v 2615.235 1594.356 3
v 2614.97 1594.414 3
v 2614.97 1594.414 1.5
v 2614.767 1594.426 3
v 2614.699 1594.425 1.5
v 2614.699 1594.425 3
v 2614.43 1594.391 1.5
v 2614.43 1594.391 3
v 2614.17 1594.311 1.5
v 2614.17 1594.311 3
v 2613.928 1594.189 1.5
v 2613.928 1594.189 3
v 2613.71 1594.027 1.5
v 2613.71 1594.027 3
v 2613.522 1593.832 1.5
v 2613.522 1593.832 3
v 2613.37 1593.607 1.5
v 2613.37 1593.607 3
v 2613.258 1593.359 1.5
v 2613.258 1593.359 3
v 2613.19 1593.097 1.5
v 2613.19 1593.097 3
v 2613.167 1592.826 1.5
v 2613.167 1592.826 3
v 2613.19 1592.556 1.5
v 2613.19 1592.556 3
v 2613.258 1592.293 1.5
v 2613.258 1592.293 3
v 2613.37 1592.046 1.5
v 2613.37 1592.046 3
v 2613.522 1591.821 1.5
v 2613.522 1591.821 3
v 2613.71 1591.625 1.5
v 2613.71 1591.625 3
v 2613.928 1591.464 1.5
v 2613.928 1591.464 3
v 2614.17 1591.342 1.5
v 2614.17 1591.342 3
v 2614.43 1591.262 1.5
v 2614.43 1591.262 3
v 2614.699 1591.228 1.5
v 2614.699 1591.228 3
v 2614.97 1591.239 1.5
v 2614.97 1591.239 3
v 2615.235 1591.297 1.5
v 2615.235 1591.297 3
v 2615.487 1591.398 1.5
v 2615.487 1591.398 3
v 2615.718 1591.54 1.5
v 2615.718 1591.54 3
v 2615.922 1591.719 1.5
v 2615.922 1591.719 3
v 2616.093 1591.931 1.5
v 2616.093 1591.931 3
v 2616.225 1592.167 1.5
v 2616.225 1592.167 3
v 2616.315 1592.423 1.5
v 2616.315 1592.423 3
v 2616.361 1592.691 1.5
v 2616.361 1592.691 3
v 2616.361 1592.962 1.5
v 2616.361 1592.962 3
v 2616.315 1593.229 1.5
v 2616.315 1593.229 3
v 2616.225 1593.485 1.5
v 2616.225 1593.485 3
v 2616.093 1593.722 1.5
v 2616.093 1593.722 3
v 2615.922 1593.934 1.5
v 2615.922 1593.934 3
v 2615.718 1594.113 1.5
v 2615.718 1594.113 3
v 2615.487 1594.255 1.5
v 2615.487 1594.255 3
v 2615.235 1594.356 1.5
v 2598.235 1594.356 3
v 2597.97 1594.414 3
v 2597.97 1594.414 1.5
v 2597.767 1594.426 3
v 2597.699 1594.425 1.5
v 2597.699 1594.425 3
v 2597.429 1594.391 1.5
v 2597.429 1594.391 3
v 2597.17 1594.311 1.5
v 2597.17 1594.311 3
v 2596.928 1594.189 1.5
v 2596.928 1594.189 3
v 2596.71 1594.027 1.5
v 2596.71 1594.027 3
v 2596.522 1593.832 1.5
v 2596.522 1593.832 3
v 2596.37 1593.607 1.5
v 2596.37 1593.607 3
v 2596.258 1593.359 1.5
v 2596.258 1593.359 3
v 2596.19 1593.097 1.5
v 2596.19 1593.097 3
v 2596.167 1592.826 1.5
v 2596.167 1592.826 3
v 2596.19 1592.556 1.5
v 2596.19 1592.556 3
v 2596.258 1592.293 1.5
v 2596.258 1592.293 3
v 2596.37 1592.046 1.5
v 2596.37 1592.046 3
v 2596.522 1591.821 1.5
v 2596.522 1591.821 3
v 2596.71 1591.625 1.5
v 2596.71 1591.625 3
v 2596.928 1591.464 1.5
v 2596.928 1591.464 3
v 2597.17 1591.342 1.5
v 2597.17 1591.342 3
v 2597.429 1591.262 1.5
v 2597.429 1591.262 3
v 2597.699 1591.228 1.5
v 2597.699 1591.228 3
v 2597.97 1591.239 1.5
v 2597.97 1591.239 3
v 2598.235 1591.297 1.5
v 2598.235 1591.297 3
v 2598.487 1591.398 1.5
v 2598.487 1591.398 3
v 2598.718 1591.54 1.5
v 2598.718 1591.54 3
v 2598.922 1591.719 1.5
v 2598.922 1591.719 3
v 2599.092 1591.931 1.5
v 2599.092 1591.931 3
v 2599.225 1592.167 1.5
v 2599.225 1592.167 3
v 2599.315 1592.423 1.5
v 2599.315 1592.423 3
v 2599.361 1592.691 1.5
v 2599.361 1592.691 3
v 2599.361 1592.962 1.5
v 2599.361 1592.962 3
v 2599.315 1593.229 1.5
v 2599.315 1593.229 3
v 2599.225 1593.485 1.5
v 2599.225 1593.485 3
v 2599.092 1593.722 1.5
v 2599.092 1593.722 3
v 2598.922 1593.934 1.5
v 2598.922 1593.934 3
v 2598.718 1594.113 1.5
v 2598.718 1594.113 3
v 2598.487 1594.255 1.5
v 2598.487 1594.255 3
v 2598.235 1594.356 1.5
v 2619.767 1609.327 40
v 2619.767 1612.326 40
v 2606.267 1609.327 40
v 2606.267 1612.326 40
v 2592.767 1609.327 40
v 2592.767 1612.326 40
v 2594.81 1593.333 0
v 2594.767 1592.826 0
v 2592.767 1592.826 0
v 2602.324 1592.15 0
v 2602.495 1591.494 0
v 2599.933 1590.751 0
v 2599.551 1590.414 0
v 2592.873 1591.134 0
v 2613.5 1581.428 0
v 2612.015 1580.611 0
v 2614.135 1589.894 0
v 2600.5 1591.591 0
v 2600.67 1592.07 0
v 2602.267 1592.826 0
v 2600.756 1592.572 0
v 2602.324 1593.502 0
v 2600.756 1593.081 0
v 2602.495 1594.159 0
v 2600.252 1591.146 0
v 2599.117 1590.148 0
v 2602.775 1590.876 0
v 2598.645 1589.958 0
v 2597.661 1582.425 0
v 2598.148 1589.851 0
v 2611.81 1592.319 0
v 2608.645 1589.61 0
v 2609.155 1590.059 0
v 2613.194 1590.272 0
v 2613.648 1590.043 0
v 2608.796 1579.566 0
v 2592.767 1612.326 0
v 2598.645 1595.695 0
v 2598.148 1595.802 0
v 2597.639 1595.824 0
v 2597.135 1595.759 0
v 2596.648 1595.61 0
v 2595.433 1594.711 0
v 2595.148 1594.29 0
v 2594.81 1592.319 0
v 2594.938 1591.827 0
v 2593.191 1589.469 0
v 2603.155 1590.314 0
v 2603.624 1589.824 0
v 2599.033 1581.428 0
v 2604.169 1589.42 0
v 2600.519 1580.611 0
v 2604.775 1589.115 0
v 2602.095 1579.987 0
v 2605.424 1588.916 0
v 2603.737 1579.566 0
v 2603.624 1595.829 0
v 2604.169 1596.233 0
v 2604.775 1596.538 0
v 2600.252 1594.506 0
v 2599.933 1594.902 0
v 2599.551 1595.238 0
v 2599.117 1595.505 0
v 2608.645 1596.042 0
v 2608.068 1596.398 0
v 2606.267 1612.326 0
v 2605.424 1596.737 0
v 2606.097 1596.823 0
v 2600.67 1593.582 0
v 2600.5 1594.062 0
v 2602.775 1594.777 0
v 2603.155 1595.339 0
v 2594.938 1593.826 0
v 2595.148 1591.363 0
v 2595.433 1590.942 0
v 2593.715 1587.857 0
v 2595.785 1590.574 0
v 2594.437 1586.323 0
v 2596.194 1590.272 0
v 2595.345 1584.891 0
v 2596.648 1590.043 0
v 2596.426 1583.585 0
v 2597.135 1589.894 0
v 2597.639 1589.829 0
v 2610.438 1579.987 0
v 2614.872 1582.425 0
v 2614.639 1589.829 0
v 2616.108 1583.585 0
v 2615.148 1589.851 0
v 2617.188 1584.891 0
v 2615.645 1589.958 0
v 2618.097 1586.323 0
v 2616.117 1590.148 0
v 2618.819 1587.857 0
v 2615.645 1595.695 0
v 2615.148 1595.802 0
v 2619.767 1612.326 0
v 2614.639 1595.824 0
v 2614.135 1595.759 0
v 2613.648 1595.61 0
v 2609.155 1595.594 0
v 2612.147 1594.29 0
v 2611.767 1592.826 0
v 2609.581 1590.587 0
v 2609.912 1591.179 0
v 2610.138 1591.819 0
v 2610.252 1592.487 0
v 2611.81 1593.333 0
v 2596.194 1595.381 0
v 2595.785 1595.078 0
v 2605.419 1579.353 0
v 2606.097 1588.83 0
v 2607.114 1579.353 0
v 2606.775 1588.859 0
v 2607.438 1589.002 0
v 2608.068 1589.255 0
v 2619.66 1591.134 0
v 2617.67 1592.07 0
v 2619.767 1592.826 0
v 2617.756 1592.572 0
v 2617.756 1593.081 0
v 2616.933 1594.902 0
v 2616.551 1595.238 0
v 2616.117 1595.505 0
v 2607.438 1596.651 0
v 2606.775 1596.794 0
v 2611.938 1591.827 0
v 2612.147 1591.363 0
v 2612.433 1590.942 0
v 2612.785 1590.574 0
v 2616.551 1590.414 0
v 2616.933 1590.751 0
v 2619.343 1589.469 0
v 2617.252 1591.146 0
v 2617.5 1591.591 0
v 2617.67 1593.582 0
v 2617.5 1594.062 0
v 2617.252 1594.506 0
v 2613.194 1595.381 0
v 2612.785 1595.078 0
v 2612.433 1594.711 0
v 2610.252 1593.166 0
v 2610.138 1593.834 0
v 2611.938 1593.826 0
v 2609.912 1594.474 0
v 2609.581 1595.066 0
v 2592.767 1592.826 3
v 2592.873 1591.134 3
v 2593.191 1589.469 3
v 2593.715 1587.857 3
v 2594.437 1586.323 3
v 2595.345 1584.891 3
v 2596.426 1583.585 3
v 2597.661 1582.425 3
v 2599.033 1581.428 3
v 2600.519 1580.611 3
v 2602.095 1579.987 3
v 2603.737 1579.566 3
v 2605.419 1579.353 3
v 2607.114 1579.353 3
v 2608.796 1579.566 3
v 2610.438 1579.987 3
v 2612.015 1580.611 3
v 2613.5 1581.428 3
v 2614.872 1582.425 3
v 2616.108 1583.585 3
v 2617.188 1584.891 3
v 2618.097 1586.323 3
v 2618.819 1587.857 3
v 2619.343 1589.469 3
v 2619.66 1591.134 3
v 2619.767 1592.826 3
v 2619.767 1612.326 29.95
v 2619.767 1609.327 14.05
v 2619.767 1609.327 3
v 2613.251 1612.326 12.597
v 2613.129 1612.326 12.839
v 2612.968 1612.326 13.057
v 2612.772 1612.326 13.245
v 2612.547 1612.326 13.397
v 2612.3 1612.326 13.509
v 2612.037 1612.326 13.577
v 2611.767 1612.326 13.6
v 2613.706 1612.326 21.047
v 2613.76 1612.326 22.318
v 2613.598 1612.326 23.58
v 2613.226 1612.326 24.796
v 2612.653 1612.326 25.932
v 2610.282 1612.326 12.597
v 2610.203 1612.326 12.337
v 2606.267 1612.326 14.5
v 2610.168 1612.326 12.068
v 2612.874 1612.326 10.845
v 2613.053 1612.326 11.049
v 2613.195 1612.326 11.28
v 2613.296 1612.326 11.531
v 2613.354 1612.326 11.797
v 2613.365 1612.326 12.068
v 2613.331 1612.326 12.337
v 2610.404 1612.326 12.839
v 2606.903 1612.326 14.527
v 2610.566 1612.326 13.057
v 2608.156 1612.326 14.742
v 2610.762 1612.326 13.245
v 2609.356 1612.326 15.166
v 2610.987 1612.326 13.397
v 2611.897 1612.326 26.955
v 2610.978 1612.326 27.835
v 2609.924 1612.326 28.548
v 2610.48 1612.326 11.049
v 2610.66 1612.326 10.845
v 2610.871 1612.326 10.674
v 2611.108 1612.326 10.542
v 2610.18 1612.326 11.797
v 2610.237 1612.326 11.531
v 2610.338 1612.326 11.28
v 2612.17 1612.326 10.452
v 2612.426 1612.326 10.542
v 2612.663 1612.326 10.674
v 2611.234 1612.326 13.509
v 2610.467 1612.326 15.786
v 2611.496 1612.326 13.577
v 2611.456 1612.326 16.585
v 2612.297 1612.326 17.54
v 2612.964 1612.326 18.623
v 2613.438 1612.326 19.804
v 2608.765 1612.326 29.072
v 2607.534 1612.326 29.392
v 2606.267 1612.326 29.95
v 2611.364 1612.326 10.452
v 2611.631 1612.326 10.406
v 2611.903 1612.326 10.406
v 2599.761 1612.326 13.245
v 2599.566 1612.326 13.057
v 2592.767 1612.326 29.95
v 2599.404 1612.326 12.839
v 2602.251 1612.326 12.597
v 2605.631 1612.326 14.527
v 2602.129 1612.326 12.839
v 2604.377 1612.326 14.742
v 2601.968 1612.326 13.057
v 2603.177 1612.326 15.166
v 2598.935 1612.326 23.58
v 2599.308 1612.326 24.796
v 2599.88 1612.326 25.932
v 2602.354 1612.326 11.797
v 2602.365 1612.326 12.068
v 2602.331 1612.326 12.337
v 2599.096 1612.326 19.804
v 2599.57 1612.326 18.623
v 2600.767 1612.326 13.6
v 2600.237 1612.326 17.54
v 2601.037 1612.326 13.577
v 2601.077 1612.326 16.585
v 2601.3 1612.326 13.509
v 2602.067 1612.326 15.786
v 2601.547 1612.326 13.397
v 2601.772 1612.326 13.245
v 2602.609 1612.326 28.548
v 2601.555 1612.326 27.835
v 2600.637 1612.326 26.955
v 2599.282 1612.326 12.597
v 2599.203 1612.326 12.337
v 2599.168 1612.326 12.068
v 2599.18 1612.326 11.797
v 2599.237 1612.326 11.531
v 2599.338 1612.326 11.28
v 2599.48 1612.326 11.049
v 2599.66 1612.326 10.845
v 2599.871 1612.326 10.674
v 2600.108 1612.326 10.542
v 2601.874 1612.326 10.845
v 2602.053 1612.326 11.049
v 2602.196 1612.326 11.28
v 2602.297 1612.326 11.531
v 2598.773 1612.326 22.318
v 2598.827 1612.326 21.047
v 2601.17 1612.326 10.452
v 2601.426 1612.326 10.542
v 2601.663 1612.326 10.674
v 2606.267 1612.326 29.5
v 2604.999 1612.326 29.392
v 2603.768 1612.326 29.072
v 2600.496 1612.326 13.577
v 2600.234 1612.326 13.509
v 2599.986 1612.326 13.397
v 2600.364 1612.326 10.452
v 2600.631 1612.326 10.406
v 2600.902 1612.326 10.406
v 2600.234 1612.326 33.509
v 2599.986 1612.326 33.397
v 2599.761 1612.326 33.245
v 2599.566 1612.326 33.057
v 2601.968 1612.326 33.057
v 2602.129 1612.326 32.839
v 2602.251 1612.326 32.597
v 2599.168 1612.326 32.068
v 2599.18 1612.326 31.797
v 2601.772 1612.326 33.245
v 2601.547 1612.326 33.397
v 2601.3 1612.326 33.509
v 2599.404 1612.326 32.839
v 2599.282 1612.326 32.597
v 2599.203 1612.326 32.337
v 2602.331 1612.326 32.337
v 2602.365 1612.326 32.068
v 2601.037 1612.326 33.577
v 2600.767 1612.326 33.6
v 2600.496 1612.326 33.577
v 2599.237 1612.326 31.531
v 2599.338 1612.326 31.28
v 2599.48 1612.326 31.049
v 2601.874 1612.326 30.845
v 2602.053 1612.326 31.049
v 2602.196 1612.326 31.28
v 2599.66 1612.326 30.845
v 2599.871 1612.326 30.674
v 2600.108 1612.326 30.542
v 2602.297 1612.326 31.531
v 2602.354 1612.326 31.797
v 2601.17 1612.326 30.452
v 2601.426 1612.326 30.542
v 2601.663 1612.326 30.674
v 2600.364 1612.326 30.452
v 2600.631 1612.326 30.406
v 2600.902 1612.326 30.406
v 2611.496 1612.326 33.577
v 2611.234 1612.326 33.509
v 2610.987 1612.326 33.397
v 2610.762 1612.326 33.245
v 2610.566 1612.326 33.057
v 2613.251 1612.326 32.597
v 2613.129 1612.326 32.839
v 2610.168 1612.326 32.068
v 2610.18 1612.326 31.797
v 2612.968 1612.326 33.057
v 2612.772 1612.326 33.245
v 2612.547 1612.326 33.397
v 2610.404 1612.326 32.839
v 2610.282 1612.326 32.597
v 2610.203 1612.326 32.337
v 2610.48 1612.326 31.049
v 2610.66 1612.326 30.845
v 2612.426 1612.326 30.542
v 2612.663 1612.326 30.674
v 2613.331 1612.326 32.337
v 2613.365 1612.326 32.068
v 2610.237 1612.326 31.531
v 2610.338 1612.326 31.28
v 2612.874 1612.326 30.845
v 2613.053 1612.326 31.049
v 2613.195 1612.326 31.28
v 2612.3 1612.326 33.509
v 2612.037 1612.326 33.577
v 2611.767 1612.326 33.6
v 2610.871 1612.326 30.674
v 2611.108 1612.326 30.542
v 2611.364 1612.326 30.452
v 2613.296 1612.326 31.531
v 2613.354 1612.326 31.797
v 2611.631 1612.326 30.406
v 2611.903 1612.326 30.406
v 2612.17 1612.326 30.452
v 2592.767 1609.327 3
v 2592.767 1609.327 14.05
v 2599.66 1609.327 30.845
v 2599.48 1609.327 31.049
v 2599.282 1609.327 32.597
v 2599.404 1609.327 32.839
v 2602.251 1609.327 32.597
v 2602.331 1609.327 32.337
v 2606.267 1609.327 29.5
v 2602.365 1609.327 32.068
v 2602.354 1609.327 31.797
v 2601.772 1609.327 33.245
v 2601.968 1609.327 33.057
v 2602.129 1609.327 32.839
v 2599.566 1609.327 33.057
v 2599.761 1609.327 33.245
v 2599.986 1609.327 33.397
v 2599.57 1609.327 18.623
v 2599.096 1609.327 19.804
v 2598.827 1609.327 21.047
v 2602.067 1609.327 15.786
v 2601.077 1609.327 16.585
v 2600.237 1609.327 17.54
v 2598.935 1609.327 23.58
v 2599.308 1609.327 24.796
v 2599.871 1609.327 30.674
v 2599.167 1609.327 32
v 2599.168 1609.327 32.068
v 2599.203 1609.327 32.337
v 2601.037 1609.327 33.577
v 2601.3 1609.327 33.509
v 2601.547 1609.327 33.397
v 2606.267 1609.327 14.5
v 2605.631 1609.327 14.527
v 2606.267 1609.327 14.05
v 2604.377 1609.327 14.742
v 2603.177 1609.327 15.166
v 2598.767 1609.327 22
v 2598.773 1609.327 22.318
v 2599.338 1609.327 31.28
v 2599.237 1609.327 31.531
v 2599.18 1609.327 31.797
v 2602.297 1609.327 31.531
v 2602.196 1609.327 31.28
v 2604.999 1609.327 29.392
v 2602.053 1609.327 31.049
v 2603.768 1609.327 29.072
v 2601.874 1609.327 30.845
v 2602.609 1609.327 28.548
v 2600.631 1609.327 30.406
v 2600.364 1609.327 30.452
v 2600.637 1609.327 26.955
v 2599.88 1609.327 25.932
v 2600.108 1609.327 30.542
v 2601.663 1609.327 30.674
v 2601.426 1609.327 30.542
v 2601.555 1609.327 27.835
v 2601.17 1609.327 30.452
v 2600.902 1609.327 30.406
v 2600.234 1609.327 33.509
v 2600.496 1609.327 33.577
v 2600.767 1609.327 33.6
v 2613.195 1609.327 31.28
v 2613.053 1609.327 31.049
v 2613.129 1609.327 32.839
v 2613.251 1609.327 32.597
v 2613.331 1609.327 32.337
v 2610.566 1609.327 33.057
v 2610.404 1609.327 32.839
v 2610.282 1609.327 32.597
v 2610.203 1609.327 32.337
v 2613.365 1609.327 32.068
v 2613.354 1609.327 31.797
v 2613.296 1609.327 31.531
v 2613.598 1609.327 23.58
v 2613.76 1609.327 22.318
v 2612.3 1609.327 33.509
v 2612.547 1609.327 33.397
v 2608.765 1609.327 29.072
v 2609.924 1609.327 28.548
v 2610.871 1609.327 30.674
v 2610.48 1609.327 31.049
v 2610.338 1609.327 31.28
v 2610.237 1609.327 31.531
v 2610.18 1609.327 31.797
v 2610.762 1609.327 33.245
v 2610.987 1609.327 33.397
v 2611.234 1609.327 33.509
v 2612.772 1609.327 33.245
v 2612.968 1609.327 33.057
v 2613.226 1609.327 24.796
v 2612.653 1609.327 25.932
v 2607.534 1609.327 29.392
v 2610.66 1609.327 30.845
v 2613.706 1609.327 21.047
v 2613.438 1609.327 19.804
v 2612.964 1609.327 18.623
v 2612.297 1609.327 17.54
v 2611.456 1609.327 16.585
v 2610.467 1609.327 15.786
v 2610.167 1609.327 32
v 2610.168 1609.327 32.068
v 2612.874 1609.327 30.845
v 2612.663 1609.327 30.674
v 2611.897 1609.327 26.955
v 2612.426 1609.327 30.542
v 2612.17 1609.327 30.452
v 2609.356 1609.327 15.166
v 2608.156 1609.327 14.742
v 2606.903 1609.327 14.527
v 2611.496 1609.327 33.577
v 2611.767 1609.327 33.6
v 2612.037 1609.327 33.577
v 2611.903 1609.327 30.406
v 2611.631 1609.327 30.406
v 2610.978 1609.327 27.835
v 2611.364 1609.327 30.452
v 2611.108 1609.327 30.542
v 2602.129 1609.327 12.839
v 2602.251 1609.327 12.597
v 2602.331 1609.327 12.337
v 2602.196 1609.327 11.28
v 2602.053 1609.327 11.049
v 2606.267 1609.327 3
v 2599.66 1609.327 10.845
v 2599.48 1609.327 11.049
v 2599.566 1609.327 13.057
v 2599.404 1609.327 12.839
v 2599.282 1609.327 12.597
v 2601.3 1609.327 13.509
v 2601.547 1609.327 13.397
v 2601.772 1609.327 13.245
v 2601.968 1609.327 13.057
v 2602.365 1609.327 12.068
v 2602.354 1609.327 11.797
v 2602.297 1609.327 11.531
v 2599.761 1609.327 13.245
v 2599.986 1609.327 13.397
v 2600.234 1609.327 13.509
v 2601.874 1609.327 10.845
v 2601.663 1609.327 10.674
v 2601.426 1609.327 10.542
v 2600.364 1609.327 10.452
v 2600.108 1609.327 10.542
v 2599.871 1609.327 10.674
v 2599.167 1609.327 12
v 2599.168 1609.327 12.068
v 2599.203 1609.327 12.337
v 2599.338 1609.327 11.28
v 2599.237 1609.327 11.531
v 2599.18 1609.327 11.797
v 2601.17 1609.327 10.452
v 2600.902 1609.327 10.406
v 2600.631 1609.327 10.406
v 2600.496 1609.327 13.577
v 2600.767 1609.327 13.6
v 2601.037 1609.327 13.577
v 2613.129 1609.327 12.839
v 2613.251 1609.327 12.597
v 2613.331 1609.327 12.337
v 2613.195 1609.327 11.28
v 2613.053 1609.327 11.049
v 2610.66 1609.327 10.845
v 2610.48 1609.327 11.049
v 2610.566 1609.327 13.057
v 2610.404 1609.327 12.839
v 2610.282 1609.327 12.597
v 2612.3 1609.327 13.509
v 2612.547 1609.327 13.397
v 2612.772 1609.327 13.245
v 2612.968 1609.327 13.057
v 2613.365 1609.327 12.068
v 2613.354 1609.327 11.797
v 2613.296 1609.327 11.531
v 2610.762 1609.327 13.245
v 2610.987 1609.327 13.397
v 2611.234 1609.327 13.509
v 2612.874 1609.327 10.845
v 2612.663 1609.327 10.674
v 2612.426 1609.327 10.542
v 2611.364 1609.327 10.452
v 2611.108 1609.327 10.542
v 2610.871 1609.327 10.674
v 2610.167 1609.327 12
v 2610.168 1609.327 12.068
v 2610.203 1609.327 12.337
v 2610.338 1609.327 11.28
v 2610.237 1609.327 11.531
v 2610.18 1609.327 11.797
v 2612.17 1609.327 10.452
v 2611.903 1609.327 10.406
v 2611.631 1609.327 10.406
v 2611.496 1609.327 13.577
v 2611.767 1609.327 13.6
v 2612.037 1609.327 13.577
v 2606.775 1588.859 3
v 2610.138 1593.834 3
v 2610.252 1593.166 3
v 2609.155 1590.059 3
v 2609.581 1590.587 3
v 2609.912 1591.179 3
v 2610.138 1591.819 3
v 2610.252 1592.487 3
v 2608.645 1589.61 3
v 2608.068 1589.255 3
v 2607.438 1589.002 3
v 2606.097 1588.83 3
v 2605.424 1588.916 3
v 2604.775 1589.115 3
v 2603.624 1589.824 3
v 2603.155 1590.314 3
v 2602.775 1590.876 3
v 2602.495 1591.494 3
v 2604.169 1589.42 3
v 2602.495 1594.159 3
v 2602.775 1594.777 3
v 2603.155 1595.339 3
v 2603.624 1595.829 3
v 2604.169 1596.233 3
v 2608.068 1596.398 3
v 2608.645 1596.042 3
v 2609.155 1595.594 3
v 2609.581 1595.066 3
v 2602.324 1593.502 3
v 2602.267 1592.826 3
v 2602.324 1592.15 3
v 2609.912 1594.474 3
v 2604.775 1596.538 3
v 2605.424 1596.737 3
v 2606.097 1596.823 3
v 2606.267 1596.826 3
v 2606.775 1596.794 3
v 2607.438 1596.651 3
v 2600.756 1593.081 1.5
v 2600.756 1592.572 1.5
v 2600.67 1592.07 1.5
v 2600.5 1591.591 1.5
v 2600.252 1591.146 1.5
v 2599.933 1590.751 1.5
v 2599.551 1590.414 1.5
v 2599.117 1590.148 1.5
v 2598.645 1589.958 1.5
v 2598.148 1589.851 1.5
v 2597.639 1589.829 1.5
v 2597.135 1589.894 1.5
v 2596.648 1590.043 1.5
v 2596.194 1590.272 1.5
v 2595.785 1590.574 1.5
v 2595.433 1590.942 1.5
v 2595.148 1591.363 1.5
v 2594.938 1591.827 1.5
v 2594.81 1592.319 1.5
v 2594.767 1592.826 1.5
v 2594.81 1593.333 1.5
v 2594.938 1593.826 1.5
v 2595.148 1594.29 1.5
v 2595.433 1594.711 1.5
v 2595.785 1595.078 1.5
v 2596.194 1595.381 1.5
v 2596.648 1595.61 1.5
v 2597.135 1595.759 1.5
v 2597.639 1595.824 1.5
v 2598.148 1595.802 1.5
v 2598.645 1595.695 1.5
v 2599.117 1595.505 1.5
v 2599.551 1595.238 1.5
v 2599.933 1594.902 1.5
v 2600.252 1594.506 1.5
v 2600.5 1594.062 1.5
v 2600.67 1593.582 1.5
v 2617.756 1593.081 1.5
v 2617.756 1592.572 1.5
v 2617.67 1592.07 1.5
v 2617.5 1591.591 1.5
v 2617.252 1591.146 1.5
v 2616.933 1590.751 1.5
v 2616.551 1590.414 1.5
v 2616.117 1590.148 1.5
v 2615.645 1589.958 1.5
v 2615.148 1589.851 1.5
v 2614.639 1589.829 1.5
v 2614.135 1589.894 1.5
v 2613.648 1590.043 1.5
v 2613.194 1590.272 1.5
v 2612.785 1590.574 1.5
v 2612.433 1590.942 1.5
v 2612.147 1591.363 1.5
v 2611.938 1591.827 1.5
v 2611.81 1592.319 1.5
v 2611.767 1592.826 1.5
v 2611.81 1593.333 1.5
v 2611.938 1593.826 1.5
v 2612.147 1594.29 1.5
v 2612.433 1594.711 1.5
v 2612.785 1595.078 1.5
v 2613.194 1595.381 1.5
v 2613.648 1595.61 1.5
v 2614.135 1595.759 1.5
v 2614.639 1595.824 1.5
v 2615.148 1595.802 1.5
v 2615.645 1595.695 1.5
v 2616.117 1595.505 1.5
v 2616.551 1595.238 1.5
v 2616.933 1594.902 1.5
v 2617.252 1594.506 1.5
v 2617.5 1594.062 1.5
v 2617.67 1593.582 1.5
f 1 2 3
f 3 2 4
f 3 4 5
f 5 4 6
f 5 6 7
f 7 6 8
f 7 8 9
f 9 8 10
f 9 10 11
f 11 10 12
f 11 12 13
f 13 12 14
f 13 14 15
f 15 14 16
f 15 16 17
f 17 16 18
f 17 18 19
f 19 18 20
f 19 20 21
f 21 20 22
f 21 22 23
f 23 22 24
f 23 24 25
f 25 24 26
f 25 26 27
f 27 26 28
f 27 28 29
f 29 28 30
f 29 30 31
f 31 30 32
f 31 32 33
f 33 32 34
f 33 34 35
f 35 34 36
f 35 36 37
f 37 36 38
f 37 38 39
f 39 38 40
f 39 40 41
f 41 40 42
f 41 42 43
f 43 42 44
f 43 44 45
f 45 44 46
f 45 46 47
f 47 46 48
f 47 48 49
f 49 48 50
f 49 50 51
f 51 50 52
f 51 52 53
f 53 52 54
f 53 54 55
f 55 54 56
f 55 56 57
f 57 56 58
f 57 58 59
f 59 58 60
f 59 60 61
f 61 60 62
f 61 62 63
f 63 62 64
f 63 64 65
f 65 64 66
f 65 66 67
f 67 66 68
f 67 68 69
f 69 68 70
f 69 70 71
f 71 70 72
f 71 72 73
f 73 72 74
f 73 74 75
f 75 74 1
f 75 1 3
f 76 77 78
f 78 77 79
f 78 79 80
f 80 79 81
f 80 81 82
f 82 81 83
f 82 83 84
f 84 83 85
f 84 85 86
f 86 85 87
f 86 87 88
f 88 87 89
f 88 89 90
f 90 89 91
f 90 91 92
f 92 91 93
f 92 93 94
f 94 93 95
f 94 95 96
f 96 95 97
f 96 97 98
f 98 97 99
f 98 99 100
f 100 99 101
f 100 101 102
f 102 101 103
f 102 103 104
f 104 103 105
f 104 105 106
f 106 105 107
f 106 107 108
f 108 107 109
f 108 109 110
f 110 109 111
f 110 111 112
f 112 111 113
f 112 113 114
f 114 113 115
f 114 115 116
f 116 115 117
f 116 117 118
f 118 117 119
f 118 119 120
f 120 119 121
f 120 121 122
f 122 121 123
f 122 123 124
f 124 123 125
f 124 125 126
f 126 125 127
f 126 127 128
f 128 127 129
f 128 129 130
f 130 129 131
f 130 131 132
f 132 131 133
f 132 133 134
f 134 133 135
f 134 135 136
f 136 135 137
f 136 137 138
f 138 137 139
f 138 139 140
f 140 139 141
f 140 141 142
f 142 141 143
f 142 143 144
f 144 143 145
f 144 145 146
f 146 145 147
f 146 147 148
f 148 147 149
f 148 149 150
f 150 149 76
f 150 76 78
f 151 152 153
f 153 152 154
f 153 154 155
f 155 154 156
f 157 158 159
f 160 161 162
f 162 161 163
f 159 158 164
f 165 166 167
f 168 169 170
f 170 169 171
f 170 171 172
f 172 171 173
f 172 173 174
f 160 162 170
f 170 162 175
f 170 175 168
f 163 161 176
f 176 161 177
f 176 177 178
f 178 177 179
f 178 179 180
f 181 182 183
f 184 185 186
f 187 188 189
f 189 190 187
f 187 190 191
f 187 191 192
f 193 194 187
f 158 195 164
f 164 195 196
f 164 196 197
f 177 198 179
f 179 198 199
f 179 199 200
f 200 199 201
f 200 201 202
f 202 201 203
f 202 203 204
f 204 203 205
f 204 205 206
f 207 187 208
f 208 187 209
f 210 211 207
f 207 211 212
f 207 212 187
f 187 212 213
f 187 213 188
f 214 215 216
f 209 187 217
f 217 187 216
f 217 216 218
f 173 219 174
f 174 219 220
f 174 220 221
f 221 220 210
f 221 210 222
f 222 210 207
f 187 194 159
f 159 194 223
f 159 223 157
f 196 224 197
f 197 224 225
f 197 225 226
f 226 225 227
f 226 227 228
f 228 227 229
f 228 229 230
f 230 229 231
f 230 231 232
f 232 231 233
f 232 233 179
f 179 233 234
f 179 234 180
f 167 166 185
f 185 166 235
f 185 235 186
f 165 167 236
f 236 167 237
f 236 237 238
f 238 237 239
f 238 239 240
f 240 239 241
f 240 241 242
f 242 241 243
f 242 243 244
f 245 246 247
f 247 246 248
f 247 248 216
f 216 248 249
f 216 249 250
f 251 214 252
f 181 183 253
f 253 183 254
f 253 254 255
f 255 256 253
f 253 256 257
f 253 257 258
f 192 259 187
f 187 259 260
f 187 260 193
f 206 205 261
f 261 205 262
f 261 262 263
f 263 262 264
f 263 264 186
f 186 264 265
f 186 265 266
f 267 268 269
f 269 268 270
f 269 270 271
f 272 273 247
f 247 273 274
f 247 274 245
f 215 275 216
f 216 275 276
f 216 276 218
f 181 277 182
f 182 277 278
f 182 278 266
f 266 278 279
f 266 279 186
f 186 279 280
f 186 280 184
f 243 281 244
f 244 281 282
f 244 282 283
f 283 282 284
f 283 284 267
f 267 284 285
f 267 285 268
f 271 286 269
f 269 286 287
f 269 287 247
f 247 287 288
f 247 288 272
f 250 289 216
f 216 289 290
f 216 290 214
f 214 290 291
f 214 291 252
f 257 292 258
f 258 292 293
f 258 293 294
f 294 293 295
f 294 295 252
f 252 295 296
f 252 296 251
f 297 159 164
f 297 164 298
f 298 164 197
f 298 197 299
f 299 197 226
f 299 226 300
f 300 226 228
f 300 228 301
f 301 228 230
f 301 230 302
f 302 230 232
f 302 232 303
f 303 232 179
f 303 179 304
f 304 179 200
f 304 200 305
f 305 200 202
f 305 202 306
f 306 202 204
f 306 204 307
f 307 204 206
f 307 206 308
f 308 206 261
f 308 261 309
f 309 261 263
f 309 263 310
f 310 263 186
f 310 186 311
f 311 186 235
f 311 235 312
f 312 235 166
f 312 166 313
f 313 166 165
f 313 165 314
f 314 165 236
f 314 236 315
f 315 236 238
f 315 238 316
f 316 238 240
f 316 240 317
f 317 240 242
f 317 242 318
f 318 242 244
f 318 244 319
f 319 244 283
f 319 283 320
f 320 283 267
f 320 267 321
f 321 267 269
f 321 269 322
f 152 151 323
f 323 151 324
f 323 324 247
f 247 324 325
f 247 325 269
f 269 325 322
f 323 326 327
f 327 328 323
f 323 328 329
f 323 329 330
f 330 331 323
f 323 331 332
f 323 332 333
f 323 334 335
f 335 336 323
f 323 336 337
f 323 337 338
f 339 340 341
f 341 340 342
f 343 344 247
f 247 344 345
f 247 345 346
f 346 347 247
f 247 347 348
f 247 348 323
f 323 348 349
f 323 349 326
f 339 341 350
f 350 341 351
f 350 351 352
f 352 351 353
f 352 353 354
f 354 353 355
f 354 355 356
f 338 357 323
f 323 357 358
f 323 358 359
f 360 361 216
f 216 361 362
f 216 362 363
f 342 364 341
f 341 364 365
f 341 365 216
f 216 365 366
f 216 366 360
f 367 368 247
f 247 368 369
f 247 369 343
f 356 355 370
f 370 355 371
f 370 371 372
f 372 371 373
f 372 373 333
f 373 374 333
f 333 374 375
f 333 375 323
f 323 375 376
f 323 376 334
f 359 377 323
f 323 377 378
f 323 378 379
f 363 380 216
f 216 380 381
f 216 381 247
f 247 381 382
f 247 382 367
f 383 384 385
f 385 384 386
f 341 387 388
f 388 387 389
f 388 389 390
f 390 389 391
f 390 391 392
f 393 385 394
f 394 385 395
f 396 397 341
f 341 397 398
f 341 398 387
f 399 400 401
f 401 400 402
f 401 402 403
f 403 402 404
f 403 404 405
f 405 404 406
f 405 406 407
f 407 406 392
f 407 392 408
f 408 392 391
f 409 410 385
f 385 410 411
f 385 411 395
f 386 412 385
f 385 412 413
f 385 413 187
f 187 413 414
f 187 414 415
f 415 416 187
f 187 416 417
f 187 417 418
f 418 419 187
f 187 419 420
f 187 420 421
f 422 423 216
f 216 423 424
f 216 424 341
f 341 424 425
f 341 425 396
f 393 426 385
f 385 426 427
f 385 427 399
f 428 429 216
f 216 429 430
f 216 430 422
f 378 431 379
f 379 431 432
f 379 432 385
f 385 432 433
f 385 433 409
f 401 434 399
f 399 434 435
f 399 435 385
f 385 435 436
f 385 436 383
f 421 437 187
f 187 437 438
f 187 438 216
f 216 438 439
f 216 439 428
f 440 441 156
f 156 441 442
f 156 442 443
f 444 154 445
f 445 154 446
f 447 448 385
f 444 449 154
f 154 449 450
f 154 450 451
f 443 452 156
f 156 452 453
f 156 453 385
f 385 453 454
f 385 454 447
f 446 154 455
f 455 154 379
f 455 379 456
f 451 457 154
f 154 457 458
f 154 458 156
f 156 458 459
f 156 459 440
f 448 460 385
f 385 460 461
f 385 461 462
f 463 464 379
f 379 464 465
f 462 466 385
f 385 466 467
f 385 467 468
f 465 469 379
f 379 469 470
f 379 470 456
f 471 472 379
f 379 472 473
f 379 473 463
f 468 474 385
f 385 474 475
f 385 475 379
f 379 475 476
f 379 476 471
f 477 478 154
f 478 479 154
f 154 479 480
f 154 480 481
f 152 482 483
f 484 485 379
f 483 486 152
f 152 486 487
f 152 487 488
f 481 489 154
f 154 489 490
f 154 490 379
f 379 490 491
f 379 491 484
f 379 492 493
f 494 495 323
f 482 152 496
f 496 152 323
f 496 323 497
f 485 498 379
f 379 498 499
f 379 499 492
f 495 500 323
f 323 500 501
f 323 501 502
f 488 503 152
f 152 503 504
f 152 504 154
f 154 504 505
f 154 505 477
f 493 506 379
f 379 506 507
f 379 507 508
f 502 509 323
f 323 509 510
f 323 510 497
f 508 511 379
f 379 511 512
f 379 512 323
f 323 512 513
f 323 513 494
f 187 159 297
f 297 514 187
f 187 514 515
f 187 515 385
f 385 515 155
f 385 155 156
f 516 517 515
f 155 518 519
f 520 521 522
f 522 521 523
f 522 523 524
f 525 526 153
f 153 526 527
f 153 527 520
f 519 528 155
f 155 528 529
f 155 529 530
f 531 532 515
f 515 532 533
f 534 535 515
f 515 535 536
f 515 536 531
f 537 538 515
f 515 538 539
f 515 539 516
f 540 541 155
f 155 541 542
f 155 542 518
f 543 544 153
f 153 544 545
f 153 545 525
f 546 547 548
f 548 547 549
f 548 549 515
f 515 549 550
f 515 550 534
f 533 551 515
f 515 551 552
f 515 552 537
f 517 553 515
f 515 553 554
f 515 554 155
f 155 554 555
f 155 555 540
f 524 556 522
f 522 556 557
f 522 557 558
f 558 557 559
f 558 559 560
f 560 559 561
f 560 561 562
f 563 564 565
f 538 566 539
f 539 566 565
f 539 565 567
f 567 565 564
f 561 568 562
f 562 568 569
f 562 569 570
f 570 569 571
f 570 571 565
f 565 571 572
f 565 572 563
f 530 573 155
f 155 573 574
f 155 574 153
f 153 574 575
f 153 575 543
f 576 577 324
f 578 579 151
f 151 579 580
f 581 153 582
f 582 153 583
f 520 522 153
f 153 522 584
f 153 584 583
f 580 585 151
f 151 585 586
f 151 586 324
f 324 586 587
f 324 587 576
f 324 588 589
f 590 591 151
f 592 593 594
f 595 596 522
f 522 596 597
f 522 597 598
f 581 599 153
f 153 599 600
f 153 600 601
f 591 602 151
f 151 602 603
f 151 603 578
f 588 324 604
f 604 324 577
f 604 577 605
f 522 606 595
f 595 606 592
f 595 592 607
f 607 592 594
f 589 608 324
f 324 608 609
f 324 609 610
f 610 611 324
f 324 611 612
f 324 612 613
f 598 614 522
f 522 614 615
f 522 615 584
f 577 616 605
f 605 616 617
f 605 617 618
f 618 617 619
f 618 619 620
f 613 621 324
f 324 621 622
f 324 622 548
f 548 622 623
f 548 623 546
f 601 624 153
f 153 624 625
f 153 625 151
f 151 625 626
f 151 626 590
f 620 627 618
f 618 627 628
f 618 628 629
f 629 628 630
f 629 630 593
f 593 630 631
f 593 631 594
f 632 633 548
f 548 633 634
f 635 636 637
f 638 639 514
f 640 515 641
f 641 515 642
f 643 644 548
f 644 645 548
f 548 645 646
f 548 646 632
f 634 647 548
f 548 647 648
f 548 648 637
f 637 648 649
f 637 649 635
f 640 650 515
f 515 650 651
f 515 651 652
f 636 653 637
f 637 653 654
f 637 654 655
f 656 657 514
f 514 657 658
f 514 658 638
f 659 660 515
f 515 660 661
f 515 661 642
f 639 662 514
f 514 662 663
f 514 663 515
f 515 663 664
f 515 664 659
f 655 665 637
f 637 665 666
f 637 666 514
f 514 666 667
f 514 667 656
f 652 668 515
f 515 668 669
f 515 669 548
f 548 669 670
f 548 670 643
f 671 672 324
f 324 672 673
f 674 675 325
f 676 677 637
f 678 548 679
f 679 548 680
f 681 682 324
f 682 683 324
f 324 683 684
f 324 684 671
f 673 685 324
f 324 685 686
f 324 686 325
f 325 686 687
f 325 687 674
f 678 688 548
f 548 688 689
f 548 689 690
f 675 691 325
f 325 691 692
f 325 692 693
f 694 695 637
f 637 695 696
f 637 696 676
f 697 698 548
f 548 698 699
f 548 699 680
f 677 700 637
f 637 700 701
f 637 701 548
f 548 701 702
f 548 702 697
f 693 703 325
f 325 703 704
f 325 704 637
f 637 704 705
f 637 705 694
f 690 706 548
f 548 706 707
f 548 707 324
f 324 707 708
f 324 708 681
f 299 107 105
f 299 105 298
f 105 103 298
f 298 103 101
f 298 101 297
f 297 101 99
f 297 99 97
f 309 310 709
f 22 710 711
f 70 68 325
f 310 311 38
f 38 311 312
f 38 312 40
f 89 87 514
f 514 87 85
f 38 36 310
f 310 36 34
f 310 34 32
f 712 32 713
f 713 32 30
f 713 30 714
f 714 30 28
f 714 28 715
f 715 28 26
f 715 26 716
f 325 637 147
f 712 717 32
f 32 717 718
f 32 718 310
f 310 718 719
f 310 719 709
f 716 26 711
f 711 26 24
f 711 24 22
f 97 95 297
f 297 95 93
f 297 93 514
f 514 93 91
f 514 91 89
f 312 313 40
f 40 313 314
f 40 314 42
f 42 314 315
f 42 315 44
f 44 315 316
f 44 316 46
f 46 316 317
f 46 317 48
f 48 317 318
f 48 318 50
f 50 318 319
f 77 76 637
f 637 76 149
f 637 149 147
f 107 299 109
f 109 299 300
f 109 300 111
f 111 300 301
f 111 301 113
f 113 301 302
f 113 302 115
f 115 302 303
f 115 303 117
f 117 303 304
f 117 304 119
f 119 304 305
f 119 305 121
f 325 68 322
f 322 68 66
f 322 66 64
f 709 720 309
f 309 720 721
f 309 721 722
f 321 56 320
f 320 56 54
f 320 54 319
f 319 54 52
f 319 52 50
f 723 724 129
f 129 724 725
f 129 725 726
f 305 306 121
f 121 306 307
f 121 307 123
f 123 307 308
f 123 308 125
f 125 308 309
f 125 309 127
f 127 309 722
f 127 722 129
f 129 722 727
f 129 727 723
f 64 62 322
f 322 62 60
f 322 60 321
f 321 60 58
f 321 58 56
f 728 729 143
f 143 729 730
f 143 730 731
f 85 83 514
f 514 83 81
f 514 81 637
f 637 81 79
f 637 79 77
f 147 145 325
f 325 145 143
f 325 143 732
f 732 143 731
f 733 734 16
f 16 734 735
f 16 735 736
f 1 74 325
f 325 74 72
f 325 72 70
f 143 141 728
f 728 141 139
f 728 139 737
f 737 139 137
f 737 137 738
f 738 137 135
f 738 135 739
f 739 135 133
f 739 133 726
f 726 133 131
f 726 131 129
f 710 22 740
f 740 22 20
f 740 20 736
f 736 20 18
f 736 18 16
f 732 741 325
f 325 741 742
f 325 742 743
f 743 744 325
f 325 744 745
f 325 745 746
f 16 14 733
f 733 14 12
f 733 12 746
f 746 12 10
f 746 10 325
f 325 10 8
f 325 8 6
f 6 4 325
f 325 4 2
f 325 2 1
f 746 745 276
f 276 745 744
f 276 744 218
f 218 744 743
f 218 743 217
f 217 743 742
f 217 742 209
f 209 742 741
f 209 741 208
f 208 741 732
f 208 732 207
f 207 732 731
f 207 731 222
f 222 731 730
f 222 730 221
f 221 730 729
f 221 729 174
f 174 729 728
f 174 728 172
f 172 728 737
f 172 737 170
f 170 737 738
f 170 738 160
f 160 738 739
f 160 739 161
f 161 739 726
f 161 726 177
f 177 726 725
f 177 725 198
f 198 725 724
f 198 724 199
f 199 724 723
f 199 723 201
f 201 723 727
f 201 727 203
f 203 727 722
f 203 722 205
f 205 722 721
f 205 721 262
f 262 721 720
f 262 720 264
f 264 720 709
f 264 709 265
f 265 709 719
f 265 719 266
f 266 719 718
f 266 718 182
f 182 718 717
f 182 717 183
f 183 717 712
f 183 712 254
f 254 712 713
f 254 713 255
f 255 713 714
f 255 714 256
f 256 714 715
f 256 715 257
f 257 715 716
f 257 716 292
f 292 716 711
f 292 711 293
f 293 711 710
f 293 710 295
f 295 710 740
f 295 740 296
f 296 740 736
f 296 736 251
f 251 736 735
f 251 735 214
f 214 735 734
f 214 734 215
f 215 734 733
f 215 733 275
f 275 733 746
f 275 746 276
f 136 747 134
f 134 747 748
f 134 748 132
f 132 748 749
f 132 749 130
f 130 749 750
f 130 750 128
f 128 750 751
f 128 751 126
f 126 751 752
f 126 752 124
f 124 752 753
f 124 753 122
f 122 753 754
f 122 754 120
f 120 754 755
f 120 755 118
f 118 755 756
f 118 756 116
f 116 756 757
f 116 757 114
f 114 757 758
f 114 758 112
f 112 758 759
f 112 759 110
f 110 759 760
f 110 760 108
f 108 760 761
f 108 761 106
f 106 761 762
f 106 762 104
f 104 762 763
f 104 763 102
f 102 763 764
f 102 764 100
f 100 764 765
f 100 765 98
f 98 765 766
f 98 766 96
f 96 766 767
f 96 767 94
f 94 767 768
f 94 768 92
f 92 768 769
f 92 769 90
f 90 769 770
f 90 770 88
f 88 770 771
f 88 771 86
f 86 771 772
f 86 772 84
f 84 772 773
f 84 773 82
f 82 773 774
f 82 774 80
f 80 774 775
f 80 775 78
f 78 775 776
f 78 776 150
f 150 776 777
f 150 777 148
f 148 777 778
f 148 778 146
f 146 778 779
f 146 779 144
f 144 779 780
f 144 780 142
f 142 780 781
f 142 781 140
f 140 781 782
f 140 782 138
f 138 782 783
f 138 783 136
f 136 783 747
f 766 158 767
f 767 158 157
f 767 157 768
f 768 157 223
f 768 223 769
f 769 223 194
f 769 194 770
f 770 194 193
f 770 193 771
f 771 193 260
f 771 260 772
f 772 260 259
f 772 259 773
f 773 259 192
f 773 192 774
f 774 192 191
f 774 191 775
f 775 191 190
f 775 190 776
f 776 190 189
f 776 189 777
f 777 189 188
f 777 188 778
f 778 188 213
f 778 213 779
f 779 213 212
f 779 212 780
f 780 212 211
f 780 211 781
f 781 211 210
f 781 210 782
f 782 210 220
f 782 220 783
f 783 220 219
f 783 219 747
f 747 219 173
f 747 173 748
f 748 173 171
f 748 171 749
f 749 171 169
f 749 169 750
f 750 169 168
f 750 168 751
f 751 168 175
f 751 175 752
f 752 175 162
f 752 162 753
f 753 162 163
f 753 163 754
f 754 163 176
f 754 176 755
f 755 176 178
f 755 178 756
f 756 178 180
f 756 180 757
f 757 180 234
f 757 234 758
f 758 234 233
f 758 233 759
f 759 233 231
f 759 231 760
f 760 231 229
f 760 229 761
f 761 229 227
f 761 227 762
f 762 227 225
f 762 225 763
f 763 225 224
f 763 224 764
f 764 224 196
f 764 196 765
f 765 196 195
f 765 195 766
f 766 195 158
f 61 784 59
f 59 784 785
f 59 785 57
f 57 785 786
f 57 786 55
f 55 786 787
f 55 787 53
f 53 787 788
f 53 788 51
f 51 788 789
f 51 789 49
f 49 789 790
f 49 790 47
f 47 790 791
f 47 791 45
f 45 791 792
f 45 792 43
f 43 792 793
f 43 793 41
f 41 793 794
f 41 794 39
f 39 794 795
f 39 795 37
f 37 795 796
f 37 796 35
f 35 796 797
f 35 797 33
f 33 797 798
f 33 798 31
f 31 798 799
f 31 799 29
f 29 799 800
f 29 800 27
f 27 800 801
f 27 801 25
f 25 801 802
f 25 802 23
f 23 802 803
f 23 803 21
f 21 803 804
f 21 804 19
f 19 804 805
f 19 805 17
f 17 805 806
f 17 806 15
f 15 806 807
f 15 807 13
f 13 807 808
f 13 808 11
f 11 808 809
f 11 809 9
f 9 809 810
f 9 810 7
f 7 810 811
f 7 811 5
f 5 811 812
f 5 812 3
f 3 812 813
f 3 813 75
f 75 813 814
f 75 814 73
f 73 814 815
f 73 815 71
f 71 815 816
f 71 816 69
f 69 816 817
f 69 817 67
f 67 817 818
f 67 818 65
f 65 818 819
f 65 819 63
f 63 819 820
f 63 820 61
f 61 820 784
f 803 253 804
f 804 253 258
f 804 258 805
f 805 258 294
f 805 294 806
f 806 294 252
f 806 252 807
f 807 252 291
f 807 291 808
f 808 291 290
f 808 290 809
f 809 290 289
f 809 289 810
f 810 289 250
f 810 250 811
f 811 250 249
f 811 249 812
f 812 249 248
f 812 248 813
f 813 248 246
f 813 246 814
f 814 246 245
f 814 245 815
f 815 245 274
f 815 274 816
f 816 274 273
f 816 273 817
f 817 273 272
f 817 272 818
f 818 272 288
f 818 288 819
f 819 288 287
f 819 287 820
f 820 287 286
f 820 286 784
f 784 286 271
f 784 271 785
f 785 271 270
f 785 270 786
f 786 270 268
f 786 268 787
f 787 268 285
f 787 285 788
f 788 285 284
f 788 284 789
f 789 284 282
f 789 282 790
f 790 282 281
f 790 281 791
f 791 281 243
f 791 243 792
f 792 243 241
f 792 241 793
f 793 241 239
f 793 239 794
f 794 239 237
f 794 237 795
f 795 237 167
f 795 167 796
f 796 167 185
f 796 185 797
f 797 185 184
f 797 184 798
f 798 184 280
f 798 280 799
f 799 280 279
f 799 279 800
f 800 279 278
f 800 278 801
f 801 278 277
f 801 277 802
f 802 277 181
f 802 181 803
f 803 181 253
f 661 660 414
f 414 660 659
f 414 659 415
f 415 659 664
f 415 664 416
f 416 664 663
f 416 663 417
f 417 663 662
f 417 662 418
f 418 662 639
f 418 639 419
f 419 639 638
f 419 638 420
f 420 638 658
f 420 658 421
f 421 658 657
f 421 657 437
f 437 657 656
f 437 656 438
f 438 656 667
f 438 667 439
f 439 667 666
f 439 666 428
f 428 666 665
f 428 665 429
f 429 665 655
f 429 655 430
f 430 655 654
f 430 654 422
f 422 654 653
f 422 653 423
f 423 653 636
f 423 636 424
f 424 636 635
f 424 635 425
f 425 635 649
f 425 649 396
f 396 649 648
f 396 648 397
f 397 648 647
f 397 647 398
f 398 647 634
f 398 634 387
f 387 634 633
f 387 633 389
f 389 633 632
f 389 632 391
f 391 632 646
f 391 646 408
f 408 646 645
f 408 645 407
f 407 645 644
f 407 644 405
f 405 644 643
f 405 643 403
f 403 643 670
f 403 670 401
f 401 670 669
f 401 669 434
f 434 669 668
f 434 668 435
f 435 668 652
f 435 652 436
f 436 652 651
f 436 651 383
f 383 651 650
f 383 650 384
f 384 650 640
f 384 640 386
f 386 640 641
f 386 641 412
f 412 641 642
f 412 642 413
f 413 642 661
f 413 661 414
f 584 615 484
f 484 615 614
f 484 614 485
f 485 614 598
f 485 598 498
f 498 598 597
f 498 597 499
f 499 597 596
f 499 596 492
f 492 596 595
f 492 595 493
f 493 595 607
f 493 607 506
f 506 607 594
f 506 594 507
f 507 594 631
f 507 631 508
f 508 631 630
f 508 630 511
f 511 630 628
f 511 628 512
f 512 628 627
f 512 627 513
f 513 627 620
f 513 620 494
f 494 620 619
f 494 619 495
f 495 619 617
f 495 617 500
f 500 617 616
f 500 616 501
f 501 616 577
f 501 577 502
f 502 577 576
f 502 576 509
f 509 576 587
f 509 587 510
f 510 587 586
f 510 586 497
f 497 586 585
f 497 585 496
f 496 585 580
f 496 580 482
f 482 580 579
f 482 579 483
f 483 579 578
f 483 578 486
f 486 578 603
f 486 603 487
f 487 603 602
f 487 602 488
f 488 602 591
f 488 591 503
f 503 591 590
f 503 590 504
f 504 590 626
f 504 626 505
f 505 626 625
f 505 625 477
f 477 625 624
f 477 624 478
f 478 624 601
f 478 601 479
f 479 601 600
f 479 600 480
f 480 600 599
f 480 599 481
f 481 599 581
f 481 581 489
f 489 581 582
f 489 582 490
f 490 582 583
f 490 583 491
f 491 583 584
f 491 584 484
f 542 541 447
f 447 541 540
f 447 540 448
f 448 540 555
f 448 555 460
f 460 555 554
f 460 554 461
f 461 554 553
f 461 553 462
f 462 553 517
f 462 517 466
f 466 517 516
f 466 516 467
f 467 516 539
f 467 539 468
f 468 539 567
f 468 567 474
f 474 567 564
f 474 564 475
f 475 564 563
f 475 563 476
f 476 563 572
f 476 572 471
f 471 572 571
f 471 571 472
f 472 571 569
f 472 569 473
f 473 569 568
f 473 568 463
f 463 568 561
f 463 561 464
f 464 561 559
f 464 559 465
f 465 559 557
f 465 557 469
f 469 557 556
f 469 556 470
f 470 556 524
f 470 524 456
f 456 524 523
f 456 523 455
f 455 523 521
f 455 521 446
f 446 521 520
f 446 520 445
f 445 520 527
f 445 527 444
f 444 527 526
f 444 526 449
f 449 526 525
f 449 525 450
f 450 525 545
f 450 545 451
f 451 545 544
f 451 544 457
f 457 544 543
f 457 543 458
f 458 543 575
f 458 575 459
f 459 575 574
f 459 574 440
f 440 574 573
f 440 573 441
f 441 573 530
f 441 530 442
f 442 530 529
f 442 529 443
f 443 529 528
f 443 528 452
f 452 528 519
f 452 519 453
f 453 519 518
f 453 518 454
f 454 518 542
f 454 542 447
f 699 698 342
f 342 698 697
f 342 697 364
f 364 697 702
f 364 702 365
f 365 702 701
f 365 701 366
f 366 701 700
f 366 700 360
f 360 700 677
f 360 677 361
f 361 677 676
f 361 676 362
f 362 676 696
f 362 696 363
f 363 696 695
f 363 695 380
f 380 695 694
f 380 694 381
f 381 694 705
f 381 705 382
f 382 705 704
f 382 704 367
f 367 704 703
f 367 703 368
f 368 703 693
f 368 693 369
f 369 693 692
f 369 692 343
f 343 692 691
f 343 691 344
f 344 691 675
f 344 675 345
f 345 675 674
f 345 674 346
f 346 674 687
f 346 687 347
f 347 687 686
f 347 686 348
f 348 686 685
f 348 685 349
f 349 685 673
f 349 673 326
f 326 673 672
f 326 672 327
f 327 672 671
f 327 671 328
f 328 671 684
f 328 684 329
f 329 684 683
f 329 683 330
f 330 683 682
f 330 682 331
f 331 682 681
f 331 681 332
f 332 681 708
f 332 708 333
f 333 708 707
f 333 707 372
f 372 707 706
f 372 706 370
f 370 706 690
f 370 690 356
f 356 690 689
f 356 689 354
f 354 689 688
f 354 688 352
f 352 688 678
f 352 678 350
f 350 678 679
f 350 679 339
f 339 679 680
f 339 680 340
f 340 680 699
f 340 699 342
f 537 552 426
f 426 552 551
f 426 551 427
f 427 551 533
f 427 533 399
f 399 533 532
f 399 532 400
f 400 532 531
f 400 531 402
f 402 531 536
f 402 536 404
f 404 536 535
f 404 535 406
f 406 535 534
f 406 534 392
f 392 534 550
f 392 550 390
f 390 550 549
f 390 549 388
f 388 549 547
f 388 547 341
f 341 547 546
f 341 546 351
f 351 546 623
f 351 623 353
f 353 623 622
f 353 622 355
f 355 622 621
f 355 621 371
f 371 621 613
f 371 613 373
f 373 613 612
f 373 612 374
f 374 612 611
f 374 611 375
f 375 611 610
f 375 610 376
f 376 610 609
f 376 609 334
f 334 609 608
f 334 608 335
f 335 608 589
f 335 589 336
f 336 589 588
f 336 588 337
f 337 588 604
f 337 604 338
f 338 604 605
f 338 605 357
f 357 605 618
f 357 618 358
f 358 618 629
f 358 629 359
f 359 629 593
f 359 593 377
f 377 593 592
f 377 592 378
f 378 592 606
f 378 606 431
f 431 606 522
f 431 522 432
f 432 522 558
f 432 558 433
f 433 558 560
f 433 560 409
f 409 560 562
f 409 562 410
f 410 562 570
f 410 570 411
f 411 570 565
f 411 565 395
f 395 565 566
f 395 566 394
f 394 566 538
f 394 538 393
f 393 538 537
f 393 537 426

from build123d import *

# Parameters (mm, degrees)
MODEL_R             = 3.5
EXTRUDE_1_DEPTH     = 40
SKETCH_3_W          = 37
SKETCH_3_H          = 37
CUT_EXTRUDE_1_DEPTH = 40
SKETCH_4_R          = 1.5
CUT_EXTRUDE_2_DEPTH = 40
SKETCH1_R           = 4
CUT_EXTRUDE1_DEPTH  = 10
SKETCH2_R           = 1.6
CUT_EXTRUDE2_DEPTH  = 10
SKETCH3_R           = 3
CUT_EXTRUDE3_DEPTH  = 1.5
SKETCH4_R           = 1.6
CUT_EXTRUDE4_DEPTH  = 10
SKETCH5_R           = 7.5
CUT_EXTRUDE5_DEPTH  = 10


with BuildPart() as part:
    # Model → 凸台-拉伸1 (new body)
    with BuildSketch(Plane.XY):
        with BuildLine():
            Line((2619.766714505, 1592.826425633), (2619.766714505, 1612.326425633))
            Line((2619.766714505, 1612.326425633), (2592.766714505, 1612.326425633))
            Line((2592.766714505, 1612.326425633), (2592.766714505, 1592.826425633))
            ThreePointArc((2592.766714505, 1592.826425633), (2606.266714505, 1579.326425633), (2619.766714505, 1592.826425633))
        make_face()
        with Locations((2606.266714505, 1592.826425633)):
            Circle(MODEL_R, mode=Mode.SUBTRACT)
    extrude(amount=EXTRUDE_1_DEPTH)

    # 草图3 → 切除-拉伸1 (cut)
    with BuildSketch(Plane(origin=(2619.766714505, 0, 0), x_dir=(0, 0, -1), z_dir=(1, 0, 0))):
        with Locations((-21.5, 1590.826425633)):
            Rectangle(SKETCH_3_W, SKETCH_3_H)
    extrude(amount=-CUT_EXTRUDE_1_DEPTH, mode=Mode.SUBTRACT)

    # 草图4 → 切除-拉伸2 (cut)
    with BuildSketch(Plane(origin=(0, 1612.326425633, 0), x_dir=(1, 0, 0), z_dir=(0, 1, 0))):
        with Locations(Location((2600.766714505, -32, 0), (0, 0, 270))):
            Circle(SKETCH_4_R)
        with Locations(Location((2611.766714505, -32, 0), (0, 0, 270))):
            Circle(SKETCH_4_R)
        with Locations(Location((2600.766714505, -12, 0), (0, 0, 270))):
            Circle(SKETCH_4_R)
        with Locations(Location((2611.766714505, -12, 0), (0, 0, 270))):
            Circle(SKETCH_4_R)
    extrude(amount=-CUT_EXTRUDE_2_DEPTH, mode=Mode.SUBTRACT)

    # Sketch1 → Cut-Extrude1 (cut)
    with BuildSketch(Plane(origin=(0, 0, 0), x_dir=(-1, 0, 0), z_dir=(0, 0, -1))):
        with Locations((-2606.266714505, 1592.826425633)):
            Circle(SKETCH1_R)
    extrude(amount=-CUT_EXTRUDE1_DEPTH, mode=Mode.SUBTRACT)

    # Sketch2 → Cut-Extrude2 (cut)
    with BuildSketch(Plane(origin=(0, 0, 0), x_dir=(-1, 0, 0), z_dir=(0, 0, -1))):
        with Locations((-2614.766714505, 1592.826425633)):
            Circle(SKETCH2_R)
        with Locations(Location((-2597.766714505, 1592.826425633, 0), (0, 0, 90))):
            Circle(SKETCH2_R)
    extrude(amount=-CUT_EXTRUDE2_DEPTH, mode=Mode.SUBTRACT)

    # Sketch3 → Cut-Extrude3 (cut)
    with BuildSketch(Plane(origin=(0, 0, 0), x_dir=(-1, 0, 0), z_dir=(0, 0, -1))):
        with Locations((-2597.766714505, 1592.826425633)):
            Circle(SKETCH3_R)
        with Locations((-2614.766714505, 1592.826425633)):
            Circle(SKETCH3_R)
    extrude(amount=-CUT_EXTRUDE3_DEPTH, mode=Mode.SUBTRACT)

    # Sketch4 → Cut-Extrude4 (cut)
    with BuildSketch(Plane(origin=(0, 1612.326425633, 0), x_dir=(1, 0, 0), z_dir=(0, 1, 0))):
        with Locations(Location((2600.766714505, -12, 0), (0, 0, 270))):
            Circle(SKETCH4_R)
        with Locations(Location((2611.766714505, -12, 0), (0, 0, 270))):
            Circle(SKETCH4_R)
        with Locations(Location((2600.766714505, -32, 0), (0, 0, 270))):
            Circle(SKETCH4_R)
        with Locations(Location((2611.766714505, -32, 0), (0, 0, 270))):
            Circle(SKETCH4_R)
    extrude(amount=-CUT_EXTRUDE4_DEPTH, mode=Mode.SUBTRACT)

    # Sketch5 → Cut-Extrude5 (cut)
    with BuildSketch(Plane(origin=(0, 1612.326425633, 0), x_dir=(1, 0, 0), z_dir=(0, 1, 0))):
        with Locations(Location((2606.266714505, -22, 0), (0, 0, 270))):
            Circle(SKETCH5_R)
    extrude(amount=-CUT_EXTRUDE5_DEPTH, mode=Mode.SUBTRACT)


solid = part.part
